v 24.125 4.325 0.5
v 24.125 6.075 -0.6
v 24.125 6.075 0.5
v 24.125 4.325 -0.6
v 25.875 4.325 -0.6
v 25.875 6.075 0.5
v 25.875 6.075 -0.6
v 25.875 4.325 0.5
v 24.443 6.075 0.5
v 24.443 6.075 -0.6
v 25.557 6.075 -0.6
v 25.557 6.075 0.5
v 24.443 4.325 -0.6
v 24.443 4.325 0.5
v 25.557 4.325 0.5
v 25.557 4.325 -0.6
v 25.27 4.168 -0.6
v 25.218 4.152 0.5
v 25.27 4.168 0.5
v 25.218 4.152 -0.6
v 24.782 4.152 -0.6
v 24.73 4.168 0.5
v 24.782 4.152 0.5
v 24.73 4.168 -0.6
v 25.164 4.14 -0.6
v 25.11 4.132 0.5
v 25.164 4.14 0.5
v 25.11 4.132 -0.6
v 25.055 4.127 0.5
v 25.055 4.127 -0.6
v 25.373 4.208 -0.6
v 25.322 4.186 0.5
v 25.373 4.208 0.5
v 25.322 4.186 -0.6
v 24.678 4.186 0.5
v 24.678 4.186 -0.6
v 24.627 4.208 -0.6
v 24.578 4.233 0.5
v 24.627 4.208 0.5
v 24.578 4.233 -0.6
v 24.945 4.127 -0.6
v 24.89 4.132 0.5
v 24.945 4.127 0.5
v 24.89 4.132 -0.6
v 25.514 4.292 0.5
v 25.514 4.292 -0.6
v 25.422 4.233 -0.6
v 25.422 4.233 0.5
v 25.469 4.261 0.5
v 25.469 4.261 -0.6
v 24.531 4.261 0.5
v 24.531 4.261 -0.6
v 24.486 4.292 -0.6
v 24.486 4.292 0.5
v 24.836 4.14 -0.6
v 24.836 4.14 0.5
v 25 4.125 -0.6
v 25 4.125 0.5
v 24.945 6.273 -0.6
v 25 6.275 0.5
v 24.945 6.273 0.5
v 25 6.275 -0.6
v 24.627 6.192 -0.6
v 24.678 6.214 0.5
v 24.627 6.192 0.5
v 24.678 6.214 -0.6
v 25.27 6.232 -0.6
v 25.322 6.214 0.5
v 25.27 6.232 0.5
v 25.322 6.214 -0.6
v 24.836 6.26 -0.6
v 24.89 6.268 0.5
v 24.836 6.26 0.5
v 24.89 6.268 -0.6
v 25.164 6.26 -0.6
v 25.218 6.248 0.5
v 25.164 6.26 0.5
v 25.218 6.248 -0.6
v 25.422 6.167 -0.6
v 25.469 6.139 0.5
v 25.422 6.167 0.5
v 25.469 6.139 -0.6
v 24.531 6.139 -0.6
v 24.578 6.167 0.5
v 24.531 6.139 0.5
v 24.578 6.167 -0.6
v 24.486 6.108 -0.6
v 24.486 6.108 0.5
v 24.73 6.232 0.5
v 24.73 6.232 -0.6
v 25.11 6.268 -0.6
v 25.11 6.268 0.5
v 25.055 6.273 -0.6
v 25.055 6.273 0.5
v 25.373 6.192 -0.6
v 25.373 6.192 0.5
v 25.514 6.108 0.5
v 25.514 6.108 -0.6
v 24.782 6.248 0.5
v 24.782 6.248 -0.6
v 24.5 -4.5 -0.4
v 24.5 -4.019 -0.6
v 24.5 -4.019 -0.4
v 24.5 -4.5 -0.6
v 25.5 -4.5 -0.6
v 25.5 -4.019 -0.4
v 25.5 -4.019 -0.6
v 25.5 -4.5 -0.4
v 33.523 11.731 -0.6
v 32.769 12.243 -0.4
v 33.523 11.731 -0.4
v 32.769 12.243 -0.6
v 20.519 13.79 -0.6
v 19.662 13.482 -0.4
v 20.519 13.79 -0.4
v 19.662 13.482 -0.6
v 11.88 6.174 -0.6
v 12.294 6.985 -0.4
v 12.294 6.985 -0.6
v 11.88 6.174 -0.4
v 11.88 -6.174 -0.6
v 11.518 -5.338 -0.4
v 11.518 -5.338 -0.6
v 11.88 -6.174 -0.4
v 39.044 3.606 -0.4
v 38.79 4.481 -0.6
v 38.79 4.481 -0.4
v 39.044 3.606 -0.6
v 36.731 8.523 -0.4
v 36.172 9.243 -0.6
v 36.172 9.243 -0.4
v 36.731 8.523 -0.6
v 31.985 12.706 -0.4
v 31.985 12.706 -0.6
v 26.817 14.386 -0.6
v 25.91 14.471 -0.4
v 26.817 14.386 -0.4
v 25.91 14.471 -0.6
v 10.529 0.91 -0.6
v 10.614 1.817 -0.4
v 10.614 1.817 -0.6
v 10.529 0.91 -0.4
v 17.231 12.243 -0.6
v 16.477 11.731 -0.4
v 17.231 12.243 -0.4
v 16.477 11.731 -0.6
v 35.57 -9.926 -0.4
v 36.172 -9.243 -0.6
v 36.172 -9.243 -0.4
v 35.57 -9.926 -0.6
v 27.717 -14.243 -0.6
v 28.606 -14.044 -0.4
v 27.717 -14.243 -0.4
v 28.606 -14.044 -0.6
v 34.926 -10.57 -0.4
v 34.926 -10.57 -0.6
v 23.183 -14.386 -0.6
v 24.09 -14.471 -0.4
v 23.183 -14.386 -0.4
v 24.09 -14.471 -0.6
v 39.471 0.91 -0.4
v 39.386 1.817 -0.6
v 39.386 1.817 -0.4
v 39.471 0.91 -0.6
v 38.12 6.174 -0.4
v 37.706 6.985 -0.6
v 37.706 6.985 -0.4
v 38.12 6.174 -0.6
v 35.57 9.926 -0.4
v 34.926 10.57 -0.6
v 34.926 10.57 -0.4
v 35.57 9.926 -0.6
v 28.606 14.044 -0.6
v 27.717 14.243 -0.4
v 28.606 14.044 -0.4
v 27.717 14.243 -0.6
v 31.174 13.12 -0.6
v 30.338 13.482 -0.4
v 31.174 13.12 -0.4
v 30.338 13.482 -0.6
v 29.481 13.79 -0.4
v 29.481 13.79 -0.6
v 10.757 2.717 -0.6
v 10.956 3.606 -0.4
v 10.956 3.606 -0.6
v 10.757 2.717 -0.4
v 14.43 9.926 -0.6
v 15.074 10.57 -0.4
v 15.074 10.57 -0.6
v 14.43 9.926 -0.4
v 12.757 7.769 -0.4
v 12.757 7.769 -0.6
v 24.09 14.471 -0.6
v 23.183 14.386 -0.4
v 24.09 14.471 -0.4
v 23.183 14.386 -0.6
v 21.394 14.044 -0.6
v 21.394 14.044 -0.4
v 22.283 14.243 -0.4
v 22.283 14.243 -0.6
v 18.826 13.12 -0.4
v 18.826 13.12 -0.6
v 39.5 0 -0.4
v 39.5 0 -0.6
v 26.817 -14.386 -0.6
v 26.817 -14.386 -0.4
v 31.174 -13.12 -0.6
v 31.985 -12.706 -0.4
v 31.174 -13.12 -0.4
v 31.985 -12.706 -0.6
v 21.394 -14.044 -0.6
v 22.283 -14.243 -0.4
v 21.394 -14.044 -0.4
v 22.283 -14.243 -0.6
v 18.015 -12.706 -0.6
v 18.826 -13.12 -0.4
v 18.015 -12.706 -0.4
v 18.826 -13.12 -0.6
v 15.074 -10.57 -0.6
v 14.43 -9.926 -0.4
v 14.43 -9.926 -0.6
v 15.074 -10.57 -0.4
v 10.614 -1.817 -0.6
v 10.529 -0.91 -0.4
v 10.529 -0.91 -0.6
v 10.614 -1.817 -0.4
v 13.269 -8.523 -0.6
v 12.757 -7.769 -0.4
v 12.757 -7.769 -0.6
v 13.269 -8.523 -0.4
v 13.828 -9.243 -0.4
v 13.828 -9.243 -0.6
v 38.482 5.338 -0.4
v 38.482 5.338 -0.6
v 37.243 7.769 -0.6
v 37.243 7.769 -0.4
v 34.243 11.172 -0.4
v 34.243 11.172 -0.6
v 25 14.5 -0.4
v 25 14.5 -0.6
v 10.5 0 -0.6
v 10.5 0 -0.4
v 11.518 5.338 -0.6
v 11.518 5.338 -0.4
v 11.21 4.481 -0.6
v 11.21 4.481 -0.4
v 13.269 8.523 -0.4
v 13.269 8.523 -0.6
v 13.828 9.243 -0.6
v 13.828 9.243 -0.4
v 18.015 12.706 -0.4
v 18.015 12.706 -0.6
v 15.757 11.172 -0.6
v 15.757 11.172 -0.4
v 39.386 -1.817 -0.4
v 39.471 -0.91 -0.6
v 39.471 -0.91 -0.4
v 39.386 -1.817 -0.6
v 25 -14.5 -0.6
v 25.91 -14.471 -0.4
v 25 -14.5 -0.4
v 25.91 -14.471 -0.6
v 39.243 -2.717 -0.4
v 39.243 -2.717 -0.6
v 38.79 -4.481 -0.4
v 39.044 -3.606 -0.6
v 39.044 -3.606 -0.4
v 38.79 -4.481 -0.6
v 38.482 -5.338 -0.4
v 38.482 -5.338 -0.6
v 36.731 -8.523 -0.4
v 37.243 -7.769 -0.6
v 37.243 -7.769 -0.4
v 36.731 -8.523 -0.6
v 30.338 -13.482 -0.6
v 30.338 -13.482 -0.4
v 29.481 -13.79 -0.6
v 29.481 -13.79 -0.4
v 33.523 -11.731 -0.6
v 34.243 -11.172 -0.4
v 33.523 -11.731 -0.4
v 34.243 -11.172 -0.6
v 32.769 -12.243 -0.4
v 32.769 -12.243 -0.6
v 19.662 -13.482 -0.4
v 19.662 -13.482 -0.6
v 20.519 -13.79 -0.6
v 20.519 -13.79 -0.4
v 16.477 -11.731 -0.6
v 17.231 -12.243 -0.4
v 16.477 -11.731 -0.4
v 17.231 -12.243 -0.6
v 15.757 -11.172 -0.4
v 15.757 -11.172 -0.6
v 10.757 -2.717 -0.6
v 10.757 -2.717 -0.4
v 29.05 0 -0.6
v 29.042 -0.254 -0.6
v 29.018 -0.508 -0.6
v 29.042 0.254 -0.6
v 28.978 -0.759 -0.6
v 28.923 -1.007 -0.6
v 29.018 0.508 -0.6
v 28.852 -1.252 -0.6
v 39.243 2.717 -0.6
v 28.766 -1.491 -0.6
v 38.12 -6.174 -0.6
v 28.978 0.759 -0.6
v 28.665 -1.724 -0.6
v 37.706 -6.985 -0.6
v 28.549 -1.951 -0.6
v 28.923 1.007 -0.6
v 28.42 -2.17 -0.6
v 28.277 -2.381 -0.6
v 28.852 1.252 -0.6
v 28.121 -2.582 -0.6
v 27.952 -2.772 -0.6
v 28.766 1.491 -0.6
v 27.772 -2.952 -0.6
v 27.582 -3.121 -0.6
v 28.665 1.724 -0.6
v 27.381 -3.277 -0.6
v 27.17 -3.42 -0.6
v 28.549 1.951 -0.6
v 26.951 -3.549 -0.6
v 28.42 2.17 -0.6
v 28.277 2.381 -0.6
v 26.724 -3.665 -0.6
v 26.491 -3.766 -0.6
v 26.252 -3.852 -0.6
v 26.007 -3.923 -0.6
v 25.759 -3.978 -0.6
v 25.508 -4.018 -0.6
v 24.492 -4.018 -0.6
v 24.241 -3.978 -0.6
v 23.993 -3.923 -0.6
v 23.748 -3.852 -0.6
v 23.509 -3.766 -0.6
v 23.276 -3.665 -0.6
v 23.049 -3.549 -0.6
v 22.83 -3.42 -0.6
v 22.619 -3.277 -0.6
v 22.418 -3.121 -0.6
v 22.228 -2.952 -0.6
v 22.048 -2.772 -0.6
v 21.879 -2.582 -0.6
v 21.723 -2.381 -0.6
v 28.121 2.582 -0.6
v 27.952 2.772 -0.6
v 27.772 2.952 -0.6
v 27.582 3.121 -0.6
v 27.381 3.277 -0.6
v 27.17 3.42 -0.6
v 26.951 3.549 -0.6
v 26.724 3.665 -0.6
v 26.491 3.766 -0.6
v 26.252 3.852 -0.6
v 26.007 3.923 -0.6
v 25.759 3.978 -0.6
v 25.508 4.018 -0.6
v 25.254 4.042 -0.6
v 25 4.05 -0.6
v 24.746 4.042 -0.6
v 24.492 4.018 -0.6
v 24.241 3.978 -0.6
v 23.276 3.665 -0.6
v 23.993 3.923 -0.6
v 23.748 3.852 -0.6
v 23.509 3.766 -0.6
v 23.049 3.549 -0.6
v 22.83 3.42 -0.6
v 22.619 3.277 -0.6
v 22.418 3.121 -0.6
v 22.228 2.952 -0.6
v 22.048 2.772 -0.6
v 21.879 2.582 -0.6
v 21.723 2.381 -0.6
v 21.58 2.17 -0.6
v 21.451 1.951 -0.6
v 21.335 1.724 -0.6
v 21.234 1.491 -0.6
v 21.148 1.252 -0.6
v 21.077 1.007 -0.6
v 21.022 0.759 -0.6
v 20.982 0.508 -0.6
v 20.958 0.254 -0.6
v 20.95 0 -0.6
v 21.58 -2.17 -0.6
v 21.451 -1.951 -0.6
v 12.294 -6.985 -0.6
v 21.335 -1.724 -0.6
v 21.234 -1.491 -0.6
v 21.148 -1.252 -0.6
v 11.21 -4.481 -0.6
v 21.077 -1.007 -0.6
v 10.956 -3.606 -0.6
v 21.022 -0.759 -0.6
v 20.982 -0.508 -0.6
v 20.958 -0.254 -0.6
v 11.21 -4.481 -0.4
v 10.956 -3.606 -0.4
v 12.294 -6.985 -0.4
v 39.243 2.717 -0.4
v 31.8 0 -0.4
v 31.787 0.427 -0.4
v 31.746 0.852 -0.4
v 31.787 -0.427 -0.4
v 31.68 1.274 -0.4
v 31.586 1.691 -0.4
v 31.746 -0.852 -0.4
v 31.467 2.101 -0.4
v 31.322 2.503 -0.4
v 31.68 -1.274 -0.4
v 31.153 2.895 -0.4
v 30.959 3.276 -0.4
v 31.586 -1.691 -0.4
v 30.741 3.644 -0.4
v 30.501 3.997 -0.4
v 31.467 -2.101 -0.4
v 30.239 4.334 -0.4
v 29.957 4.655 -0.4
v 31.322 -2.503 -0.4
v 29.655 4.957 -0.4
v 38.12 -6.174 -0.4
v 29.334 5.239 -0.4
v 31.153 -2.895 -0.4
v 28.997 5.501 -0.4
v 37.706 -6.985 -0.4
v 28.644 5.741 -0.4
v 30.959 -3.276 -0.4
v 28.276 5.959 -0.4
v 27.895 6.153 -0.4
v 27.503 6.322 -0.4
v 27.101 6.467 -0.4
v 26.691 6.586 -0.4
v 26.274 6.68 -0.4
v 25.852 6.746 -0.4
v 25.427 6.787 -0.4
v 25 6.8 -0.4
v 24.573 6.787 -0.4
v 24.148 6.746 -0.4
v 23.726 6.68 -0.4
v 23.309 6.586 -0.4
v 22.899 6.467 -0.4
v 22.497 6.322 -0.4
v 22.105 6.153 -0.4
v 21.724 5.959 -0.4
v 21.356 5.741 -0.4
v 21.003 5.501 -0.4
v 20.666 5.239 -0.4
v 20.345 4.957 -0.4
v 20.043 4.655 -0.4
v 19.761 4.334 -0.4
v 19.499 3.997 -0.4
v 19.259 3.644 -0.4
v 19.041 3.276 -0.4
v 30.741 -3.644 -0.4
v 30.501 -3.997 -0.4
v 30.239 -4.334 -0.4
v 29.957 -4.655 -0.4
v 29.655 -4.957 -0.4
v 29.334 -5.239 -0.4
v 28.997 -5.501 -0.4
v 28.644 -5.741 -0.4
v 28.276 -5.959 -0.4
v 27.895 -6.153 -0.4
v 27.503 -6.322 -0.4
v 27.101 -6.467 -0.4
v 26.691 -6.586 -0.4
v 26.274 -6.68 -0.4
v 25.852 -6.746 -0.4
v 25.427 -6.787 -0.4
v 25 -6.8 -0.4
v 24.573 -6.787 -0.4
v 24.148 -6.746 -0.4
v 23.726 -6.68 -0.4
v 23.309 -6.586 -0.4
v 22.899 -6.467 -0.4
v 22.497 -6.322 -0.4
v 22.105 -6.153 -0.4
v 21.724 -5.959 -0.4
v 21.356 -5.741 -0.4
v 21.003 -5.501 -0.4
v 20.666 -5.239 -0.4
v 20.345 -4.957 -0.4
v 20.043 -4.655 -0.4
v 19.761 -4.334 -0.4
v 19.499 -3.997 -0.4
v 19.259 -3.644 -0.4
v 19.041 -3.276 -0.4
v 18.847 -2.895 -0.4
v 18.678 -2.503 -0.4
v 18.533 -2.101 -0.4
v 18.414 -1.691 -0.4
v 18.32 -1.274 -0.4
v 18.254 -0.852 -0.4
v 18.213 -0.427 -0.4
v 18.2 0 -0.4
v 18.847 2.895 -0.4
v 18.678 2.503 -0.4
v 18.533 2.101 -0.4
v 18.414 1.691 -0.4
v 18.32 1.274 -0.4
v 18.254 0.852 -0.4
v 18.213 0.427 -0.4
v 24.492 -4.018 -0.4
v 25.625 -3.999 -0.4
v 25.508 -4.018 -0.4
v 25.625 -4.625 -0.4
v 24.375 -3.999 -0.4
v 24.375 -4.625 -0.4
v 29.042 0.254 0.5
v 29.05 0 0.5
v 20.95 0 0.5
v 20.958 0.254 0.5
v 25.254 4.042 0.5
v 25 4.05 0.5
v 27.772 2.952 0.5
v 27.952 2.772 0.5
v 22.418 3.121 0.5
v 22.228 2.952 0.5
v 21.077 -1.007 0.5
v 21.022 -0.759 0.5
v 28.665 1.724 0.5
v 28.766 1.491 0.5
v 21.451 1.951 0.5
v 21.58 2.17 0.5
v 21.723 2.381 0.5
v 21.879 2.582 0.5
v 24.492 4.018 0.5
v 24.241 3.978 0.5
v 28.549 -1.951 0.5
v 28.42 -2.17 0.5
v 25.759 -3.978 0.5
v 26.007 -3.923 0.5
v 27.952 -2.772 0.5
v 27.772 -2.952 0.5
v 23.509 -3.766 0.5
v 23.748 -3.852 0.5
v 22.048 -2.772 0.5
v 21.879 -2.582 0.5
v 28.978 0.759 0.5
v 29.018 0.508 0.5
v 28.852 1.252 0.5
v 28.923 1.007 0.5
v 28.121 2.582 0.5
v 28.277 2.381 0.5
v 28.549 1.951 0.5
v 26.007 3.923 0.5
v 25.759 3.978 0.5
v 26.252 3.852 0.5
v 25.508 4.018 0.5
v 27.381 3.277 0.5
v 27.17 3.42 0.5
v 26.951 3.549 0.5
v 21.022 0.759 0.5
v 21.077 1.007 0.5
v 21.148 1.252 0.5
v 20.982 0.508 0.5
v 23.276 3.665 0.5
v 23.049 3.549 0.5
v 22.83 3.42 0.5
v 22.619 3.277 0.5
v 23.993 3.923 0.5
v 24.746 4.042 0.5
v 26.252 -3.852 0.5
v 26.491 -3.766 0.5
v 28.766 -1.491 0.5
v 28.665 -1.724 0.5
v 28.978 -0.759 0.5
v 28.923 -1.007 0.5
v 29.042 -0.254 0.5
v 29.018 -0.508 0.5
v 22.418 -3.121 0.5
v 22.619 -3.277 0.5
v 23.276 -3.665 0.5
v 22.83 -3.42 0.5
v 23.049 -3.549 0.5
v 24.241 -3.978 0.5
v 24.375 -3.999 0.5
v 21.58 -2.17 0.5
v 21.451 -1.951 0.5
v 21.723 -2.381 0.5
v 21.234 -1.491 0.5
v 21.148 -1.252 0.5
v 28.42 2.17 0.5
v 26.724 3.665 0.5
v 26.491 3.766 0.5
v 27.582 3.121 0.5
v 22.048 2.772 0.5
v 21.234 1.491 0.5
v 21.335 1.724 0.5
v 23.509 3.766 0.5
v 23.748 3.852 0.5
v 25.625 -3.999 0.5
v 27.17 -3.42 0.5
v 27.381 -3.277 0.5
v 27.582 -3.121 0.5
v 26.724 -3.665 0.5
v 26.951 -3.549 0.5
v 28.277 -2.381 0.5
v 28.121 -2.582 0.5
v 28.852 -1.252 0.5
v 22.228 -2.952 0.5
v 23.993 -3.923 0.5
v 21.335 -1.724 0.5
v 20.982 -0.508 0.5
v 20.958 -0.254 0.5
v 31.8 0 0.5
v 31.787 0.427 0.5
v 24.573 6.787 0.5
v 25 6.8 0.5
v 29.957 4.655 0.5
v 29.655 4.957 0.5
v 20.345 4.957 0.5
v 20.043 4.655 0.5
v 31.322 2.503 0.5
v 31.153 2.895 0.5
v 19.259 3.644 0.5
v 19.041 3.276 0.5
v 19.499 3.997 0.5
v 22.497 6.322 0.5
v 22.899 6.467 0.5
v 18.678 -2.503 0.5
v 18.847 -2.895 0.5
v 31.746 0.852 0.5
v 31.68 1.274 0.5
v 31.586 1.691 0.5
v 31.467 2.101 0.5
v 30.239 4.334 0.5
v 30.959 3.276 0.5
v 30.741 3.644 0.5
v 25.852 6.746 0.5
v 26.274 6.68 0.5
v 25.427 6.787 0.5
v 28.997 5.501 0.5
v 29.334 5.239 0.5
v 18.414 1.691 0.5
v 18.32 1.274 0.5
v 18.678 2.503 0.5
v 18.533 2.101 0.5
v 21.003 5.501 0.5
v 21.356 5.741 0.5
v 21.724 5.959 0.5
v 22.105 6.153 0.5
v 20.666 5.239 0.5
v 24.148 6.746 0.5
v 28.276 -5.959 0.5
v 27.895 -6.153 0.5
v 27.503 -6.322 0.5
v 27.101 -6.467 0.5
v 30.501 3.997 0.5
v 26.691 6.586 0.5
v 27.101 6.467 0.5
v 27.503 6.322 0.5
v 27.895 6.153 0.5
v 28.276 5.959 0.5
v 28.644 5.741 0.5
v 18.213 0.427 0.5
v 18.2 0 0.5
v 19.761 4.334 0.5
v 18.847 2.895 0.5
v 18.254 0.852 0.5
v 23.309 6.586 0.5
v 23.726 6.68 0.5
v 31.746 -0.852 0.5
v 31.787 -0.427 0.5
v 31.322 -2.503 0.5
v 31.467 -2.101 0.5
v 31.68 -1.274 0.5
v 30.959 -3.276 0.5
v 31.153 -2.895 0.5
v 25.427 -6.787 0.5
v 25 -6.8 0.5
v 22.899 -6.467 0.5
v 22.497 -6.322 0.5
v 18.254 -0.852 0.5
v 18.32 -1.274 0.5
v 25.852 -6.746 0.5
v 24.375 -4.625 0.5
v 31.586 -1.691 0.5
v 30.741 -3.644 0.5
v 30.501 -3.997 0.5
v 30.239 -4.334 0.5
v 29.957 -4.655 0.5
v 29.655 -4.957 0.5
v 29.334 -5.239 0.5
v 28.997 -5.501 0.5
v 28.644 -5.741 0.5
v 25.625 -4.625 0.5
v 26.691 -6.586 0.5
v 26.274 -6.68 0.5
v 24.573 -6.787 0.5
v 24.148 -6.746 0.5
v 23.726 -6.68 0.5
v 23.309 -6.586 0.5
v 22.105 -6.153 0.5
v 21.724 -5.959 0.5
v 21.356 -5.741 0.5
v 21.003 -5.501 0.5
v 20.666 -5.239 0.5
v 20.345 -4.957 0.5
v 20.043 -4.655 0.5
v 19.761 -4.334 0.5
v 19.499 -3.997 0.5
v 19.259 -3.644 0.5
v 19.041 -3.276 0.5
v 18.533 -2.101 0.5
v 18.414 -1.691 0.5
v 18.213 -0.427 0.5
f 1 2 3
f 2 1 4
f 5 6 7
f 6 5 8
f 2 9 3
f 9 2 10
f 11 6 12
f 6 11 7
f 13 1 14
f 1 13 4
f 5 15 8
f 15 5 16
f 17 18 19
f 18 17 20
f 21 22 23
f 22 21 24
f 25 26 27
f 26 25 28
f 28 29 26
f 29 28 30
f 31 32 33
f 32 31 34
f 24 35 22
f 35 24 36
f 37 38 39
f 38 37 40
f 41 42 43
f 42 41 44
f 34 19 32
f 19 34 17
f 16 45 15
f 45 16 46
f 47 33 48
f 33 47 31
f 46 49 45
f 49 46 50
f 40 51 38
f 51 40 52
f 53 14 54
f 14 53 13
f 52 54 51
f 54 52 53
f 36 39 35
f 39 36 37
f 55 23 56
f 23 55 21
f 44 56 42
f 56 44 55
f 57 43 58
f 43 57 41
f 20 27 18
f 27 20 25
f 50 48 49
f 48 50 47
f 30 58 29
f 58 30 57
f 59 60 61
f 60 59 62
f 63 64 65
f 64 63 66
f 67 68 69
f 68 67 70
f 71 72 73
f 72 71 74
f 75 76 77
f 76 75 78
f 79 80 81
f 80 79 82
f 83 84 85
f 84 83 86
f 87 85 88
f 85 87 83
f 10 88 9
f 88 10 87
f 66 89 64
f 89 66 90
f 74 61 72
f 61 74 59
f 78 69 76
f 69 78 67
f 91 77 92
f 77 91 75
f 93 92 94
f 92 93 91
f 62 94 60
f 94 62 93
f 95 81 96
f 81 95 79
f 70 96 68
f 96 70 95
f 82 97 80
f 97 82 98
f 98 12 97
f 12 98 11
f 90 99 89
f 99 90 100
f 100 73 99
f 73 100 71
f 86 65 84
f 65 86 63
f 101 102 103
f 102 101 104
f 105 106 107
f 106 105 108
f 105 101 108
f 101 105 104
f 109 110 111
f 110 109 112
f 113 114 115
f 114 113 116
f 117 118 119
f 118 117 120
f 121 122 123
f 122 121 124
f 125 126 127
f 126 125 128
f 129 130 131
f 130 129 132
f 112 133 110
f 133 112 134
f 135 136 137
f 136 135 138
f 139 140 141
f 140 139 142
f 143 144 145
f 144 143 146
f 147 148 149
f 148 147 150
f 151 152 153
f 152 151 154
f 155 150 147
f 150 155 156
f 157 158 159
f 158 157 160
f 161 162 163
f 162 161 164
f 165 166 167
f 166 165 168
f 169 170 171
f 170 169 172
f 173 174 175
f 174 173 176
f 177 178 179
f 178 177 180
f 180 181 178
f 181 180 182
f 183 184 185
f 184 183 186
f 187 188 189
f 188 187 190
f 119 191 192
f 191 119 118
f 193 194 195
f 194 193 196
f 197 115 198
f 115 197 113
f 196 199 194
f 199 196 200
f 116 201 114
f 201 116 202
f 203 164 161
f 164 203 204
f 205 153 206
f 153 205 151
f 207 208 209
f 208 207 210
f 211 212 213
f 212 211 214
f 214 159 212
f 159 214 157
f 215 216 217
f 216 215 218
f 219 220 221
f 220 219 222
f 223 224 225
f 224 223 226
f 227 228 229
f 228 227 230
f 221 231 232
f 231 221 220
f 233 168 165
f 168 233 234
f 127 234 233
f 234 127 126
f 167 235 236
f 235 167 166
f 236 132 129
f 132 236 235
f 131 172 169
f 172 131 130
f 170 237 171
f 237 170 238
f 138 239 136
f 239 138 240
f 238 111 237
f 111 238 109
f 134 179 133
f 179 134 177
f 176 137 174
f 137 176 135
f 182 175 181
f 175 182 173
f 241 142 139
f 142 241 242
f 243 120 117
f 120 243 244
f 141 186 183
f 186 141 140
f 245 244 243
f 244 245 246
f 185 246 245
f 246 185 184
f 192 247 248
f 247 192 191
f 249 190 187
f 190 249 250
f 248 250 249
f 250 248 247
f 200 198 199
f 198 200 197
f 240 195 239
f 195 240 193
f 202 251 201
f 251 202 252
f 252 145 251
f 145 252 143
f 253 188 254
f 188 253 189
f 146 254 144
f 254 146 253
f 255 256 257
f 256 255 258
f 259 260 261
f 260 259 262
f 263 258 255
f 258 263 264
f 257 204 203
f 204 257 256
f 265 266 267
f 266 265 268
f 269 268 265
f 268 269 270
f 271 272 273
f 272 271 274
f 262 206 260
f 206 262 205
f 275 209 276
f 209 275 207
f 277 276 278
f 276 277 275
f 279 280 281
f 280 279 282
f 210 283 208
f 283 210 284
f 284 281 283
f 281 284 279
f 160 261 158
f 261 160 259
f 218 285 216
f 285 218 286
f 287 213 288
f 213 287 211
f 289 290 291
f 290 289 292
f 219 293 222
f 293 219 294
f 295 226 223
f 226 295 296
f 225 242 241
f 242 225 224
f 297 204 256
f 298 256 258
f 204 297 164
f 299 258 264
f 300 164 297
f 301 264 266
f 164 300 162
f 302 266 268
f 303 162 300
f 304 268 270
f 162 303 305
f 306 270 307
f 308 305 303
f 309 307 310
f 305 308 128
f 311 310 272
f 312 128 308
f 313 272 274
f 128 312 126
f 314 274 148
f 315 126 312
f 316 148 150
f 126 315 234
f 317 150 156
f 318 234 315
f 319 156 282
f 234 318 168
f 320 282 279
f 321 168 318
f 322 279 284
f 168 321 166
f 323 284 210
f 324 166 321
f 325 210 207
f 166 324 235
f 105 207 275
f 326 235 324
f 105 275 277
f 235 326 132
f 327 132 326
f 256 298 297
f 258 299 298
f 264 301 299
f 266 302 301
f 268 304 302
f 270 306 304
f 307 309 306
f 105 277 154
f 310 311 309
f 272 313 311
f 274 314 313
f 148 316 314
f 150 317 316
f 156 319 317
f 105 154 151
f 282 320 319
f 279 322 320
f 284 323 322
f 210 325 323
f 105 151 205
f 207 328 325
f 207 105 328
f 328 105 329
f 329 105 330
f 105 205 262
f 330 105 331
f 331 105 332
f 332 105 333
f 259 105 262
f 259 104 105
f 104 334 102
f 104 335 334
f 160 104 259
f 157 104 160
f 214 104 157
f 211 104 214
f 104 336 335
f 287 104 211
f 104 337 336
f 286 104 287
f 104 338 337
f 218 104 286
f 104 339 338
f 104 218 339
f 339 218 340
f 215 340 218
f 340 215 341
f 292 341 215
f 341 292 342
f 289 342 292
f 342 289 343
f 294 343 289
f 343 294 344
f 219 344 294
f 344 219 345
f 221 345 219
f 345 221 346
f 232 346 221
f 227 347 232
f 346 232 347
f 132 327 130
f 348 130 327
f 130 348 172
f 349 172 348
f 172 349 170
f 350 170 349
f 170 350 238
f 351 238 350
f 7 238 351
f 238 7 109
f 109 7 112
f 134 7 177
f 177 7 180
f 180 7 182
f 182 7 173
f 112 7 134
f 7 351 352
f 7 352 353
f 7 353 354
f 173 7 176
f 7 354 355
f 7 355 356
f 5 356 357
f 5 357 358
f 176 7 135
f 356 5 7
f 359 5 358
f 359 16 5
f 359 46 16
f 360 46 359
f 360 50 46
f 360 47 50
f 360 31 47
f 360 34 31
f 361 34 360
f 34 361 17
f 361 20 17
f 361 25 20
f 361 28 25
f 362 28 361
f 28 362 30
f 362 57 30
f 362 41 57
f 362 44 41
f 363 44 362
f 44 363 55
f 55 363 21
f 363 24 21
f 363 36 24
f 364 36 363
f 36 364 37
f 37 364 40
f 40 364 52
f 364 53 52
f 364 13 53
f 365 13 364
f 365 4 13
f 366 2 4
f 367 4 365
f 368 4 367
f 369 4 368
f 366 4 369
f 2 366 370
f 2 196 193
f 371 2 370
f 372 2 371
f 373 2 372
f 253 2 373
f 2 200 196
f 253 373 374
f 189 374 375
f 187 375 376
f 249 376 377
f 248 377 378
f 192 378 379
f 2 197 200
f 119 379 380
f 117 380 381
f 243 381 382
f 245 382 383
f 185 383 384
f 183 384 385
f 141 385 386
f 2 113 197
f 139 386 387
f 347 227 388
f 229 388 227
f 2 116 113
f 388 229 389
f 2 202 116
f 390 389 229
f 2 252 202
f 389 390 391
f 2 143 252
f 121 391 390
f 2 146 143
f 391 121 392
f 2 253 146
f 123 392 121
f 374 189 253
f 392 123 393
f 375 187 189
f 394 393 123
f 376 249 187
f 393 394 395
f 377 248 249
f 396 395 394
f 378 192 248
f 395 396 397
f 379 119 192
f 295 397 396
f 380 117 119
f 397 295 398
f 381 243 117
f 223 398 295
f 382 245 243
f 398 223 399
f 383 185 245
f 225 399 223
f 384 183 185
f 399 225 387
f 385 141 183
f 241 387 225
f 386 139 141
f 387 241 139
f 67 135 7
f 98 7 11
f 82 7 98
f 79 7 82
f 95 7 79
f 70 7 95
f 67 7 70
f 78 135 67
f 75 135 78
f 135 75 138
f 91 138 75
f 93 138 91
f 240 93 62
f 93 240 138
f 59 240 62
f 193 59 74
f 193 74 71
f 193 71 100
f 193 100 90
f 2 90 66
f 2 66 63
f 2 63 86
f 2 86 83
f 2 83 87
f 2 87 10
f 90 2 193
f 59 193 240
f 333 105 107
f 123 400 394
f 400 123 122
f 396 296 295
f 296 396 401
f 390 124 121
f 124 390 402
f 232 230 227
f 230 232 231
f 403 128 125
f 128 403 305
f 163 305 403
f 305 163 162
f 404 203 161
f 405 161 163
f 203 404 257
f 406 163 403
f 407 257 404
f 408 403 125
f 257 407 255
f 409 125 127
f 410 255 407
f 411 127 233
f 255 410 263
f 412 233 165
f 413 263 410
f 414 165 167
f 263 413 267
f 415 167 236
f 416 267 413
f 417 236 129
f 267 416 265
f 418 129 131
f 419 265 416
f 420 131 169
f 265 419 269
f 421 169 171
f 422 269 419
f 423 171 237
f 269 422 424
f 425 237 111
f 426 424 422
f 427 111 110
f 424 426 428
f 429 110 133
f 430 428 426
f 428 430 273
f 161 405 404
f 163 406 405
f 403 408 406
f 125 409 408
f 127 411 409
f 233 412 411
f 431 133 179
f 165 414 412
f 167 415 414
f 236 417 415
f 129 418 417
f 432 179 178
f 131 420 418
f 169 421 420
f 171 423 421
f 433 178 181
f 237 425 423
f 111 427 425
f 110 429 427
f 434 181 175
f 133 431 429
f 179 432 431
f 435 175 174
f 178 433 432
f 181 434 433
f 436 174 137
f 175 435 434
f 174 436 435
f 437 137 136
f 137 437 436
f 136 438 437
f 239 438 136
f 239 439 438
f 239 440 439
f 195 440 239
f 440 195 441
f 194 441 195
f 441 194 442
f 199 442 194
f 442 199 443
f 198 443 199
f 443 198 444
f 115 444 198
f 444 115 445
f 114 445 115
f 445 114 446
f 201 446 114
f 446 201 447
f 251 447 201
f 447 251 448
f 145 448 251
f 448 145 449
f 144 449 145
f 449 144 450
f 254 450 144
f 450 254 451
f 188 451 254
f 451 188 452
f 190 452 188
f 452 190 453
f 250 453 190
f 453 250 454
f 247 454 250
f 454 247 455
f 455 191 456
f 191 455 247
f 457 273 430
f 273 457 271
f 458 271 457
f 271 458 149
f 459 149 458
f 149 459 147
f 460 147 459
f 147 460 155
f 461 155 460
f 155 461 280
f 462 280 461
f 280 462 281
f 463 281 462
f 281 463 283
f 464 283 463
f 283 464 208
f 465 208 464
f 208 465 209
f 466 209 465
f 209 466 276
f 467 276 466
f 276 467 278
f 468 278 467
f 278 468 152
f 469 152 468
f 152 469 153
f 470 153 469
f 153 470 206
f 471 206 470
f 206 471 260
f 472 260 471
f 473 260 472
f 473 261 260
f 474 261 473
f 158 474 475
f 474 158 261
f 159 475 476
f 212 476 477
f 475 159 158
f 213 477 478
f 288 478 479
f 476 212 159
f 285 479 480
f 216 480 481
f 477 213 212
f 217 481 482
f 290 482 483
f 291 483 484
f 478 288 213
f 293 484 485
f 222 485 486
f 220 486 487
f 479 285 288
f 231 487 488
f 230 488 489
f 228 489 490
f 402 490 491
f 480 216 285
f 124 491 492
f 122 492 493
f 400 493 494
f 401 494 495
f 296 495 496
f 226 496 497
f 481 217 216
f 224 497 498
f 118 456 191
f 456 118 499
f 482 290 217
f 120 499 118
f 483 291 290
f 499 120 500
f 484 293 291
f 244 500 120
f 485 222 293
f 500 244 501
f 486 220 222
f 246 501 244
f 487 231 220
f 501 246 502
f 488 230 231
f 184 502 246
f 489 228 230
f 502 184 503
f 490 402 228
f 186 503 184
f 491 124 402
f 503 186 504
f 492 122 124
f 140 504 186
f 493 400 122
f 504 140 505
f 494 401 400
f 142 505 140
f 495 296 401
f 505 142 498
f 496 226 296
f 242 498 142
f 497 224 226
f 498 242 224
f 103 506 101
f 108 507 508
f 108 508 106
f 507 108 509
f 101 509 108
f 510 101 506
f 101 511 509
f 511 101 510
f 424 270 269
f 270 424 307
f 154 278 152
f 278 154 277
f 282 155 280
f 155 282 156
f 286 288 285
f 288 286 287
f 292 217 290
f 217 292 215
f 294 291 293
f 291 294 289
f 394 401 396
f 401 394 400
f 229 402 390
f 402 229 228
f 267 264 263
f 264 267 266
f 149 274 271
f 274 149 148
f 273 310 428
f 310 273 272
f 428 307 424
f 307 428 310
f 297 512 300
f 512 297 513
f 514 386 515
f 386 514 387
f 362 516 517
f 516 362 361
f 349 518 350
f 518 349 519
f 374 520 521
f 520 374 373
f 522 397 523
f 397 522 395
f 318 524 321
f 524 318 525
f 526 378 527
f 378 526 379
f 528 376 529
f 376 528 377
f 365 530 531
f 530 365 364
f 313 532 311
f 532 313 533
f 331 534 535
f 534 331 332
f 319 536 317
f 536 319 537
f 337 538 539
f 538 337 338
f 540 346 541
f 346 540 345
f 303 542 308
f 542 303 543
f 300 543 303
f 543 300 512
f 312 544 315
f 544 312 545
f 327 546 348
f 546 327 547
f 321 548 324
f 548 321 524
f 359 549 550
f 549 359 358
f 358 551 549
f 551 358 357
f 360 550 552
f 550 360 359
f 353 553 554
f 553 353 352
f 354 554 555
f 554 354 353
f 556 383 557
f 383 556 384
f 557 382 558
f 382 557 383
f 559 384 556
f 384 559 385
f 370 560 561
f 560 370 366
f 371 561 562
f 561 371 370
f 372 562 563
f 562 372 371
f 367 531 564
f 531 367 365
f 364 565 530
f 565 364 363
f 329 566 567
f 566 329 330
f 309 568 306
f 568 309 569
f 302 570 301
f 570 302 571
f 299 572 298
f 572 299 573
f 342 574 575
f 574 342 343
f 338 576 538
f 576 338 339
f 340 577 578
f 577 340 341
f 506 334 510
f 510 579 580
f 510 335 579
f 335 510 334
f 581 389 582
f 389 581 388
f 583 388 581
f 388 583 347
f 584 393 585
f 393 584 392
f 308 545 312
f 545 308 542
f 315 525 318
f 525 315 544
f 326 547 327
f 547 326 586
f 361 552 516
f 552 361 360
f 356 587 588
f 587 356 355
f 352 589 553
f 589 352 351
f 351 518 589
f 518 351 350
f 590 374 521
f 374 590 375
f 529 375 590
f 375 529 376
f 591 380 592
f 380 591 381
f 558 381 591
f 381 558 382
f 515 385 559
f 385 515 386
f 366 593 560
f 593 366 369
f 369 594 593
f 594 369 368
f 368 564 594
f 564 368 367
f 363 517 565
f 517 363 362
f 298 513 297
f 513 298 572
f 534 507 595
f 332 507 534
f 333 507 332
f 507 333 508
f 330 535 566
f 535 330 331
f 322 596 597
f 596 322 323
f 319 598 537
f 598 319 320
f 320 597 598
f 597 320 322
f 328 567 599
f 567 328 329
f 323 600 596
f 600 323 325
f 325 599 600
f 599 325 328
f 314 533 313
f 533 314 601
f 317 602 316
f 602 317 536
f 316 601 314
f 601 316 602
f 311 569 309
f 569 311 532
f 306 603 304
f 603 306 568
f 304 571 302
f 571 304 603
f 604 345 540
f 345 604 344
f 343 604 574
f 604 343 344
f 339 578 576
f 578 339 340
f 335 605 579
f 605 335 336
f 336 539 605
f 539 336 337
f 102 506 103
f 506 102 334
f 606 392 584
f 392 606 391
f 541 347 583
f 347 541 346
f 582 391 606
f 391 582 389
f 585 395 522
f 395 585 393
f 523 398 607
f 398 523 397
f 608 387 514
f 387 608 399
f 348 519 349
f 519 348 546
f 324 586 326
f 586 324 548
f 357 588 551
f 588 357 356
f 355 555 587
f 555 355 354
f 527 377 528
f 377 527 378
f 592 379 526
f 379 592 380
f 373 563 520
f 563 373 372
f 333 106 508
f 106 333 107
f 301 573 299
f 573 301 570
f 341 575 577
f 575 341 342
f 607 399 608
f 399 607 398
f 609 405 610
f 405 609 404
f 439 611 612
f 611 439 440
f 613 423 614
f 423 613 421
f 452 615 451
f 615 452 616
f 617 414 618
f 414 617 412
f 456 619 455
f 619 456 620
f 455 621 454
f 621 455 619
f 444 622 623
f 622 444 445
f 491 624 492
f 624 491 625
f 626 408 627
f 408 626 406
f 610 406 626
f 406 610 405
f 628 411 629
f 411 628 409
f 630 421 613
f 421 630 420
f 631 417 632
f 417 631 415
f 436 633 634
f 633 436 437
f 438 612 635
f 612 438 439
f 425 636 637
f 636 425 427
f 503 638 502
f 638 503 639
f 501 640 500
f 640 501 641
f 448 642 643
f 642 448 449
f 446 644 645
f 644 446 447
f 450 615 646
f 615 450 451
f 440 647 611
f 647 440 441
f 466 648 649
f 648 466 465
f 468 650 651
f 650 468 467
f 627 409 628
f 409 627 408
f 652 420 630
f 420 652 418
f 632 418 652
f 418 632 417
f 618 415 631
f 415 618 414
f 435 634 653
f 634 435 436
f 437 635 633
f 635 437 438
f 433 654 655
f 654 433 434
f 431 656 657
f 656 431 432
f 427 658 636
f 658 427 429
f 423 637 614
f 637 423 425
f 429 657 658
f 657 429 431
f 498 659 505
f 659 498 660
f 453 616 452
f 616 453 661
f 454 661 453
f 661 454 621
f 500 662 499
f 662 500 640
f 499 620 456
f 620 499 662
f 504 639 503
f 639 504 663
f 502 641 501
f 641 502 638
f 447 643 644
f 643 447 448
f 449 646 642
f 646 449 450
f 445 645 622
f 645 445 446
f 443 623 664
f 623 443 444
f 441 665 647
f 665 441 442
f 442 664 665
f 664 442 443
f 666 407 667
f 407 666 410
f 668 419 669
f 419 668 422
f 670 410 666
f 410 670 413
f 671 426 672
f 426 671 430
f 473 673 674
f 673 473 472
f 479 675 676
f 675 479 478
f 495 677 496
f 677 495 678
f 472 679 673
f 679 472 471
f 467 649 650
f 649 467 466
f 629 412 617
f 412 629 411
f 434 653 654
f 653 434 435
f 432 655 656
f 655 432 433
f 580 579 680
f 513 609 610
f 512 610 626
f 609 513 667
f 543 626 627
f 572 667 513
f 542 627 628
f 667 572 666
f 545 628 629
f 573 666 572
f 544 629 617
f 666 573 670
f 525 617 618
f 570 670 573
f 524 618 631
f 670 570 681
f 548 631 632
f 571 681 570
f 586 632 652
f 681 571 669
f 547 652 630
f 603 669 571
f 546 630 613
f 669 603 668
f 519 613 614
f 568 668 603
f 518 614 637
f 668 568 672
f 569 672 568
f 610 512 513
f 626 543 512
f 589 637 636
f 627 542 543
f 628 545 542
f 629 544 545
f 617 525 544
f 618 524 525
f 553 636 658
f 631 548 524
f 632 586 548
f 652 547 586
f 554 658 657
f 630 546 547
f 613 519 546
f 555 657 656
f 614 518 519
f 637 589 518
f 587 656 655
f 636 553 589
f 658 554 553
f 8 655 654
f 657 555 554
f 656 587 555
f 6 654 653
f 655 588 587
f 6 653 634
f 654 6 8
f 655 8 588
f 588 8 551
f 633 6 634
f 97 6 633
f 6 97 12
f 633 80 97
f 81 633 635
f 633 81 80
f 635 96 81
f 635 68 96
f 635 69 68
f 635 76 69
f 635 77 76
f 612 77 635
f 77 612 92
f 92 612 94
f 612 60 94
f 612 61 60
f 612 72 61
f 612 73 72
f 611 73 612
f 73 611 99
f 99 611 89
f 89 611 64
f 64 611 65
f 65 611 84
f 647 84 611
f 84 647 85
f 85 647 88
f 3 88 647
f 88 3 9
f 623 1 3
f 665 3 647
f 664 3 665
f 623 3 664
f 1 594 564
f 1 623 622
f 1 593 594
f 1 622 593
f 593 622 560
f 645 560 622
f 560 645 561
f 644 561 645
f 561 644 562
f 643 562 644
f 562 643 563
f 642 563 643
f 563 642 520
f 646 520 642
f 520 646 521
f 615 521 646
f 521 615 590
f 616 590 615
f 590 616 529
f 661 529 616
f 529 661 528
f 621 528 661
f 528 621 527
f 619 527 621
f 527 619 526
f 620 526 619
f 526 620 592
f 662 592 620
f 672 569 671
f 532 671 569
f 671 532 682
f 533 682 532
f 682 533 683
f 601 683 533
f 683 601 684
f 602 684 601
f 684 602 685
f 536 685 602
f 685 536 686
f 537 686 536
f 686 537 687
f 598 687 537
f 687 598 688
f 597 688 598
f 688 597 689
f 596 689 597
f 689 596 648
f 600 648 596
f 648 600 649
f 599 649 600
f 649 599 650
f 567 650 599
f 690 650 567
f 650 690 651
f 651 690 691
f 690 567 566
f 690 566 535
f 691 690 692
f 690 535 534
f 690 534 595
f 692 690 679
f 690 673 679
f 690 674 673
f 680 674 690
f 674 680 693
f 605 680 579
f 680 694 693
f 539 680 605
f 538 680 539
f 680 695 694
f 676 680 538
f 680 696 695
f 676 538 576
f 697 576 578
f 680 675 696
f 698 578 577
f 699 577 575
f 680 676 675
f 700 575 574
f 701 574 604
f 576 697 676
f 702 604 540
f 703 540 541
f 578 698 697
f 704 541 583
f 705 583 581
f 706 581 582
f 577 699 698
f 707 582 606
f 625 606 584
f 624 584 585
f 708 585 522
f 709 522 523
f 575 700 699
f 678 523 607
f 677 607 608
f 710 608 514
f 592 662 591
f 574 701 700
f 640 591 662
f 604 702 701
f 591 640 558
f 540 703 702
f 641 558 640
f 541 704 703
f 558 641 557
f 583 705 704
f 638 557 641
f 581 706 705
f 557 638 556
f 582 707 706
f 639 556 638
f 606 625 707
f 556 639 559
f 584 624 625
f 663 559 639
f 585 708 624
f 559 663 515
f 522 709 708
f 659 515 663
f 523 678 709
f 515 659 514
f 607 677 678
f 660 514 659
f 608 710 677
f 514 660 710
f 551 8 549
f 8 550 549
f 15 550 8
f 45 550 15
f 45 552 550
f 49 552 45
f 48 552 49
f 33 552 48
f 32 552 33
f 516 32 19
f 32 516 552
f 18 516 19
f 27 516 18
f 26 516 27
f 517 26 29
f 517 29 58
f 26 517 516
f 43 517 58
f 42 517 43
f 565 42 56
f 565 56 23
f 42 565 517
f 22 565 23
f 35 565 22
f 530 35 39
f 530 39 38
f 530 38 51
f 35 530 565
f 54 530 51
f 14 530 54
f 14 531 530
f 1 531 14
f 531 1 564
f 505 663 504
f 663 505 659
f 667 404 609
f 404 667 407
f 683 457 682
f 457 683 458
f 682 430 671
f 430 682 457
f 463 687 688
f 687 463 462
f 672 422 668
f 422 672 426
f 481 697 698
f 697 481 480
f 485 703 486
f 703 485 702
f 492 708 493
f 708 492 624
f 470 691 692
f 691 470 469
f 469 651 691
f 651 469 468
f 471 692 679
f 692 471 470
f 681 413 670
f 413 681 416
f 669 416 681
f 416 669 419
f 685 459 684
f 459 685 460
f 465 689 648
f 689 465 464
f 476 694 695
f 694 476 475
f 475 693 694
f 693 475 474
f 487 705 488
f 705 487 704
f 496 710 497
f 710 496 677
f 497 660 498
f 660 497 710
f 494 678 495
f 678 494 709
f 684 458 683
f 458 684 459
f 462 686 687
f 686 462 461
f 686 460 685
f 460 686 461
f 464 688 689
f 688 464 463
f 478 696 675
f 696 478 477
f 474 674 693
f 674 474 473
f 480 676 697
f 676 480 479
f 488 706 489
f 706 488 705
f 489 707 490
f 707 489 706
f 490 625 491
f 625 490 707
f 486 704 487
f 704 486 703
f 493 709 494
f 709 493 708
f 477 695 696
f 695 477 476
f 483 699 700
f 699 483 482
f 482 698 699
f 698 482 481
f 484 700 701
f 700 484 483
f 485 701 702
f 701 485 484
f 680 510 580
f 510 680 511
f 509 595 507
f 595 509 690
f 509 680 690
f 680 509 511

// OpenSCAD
// Famicom Disk System - Accurate Circular Hub Insert

hub_radius = 6.8;
hub_thickness = 1;

notch_radius = 1.75;    // radius of the rounded notch
notch_offset_y = 5.2;  // vertical offset from center of hub to notch center

center_hole_radius = 2.8; // small center hole
$fn = 100; // smoothness of round shapes

module spacer(){
    translate([0, 30, -.2])
    difference(){
        cylinder(h = 0.2, r = 14.5, center = true);
        hole();
        translate([0, 0, -hub_thickness])
        sideB();
    }
}

module hole(){
    // Rounded notch (cylinder cut into side)
        translate([0, notch_offset_y, 0])
            cube([notch_radius,notch_radius,hub_thickness + 1], center = true);
        translate([0, notch_offset_y-.2, 0])
            cylinder(h = hub_thickness + 1, r = notch_radius/2, center = true);
        translate([0, notch_offset_y+.2, 0])
            cylinder(h = hub_thickness + 1, r = notch_radius/2, center = true);

        // Small round center hole
        cylinder(h = hub_thickness + 1, r = center_hole_radius, center = true);
}

module sideB() {
    difference() {
        // Main circular hub
        cylinder(h = hub_thickness, r = hub_radius, center = true);  
        hole(); 
        
        translate([0, 0, -1.12])
        cylinder(h = hub_thickness + 1, r1 =5, r2 = 2, center = true);
        // lower bevel
        translate([0, 0, -2.25])
        cylinder(h = hub_thickness*5, r1 = 10, r2 = 2, center = true);
    }
   
    //Cylinder sticking out of top
    difference() {
    translate([0, 0, hub_thickness])
    cylinder(h = hub_thickness, r = center_hole_radius+1, center = true);
        // Small round center hole
        cylinder(h = hub_thickness*3 + 1, r = center_hole_radius, center = true);
        // Upper bevel
        translate([0, 0, hub_thickness+1.175])
        cylinder(h = hub_thickness + 1, r1 = 2, r2 = 10, center = true); 
    }
    translate([0, -center_hole_radius-1.2, hub_thickness])
    cube([1,1,hub_thickness], center = true);        
   
}

module sideA() {
    translate([25, 0, 0]){ 
    translate([0, 0, -.5])
    difference(){
        cylinder(h = 0.2, r = 14.5, center = true);
        hole();
        translate([0, 0, -hub_thickness])
        sideB();
        //Center hole
        translate([0,0, 1])
        cylinder(h = hub_thickness*5, r = center_hole_radius+1.25, center = true);
        translate([0,0, -1])
            sideB();
    }
    difference() {
        // Main circular hub
        cylinder(h = hub_thickness, r = hub_radius, center = true); 
        hole();
        
        //Center hole
        translate([0,0, 1])
        cylinder(h = hub_thickness*5, r = center_hole_radius+1.25, center = true);
        translate([0,0, -1])
            sideB();
        }
    
    }
}

// Render it
sideA();
